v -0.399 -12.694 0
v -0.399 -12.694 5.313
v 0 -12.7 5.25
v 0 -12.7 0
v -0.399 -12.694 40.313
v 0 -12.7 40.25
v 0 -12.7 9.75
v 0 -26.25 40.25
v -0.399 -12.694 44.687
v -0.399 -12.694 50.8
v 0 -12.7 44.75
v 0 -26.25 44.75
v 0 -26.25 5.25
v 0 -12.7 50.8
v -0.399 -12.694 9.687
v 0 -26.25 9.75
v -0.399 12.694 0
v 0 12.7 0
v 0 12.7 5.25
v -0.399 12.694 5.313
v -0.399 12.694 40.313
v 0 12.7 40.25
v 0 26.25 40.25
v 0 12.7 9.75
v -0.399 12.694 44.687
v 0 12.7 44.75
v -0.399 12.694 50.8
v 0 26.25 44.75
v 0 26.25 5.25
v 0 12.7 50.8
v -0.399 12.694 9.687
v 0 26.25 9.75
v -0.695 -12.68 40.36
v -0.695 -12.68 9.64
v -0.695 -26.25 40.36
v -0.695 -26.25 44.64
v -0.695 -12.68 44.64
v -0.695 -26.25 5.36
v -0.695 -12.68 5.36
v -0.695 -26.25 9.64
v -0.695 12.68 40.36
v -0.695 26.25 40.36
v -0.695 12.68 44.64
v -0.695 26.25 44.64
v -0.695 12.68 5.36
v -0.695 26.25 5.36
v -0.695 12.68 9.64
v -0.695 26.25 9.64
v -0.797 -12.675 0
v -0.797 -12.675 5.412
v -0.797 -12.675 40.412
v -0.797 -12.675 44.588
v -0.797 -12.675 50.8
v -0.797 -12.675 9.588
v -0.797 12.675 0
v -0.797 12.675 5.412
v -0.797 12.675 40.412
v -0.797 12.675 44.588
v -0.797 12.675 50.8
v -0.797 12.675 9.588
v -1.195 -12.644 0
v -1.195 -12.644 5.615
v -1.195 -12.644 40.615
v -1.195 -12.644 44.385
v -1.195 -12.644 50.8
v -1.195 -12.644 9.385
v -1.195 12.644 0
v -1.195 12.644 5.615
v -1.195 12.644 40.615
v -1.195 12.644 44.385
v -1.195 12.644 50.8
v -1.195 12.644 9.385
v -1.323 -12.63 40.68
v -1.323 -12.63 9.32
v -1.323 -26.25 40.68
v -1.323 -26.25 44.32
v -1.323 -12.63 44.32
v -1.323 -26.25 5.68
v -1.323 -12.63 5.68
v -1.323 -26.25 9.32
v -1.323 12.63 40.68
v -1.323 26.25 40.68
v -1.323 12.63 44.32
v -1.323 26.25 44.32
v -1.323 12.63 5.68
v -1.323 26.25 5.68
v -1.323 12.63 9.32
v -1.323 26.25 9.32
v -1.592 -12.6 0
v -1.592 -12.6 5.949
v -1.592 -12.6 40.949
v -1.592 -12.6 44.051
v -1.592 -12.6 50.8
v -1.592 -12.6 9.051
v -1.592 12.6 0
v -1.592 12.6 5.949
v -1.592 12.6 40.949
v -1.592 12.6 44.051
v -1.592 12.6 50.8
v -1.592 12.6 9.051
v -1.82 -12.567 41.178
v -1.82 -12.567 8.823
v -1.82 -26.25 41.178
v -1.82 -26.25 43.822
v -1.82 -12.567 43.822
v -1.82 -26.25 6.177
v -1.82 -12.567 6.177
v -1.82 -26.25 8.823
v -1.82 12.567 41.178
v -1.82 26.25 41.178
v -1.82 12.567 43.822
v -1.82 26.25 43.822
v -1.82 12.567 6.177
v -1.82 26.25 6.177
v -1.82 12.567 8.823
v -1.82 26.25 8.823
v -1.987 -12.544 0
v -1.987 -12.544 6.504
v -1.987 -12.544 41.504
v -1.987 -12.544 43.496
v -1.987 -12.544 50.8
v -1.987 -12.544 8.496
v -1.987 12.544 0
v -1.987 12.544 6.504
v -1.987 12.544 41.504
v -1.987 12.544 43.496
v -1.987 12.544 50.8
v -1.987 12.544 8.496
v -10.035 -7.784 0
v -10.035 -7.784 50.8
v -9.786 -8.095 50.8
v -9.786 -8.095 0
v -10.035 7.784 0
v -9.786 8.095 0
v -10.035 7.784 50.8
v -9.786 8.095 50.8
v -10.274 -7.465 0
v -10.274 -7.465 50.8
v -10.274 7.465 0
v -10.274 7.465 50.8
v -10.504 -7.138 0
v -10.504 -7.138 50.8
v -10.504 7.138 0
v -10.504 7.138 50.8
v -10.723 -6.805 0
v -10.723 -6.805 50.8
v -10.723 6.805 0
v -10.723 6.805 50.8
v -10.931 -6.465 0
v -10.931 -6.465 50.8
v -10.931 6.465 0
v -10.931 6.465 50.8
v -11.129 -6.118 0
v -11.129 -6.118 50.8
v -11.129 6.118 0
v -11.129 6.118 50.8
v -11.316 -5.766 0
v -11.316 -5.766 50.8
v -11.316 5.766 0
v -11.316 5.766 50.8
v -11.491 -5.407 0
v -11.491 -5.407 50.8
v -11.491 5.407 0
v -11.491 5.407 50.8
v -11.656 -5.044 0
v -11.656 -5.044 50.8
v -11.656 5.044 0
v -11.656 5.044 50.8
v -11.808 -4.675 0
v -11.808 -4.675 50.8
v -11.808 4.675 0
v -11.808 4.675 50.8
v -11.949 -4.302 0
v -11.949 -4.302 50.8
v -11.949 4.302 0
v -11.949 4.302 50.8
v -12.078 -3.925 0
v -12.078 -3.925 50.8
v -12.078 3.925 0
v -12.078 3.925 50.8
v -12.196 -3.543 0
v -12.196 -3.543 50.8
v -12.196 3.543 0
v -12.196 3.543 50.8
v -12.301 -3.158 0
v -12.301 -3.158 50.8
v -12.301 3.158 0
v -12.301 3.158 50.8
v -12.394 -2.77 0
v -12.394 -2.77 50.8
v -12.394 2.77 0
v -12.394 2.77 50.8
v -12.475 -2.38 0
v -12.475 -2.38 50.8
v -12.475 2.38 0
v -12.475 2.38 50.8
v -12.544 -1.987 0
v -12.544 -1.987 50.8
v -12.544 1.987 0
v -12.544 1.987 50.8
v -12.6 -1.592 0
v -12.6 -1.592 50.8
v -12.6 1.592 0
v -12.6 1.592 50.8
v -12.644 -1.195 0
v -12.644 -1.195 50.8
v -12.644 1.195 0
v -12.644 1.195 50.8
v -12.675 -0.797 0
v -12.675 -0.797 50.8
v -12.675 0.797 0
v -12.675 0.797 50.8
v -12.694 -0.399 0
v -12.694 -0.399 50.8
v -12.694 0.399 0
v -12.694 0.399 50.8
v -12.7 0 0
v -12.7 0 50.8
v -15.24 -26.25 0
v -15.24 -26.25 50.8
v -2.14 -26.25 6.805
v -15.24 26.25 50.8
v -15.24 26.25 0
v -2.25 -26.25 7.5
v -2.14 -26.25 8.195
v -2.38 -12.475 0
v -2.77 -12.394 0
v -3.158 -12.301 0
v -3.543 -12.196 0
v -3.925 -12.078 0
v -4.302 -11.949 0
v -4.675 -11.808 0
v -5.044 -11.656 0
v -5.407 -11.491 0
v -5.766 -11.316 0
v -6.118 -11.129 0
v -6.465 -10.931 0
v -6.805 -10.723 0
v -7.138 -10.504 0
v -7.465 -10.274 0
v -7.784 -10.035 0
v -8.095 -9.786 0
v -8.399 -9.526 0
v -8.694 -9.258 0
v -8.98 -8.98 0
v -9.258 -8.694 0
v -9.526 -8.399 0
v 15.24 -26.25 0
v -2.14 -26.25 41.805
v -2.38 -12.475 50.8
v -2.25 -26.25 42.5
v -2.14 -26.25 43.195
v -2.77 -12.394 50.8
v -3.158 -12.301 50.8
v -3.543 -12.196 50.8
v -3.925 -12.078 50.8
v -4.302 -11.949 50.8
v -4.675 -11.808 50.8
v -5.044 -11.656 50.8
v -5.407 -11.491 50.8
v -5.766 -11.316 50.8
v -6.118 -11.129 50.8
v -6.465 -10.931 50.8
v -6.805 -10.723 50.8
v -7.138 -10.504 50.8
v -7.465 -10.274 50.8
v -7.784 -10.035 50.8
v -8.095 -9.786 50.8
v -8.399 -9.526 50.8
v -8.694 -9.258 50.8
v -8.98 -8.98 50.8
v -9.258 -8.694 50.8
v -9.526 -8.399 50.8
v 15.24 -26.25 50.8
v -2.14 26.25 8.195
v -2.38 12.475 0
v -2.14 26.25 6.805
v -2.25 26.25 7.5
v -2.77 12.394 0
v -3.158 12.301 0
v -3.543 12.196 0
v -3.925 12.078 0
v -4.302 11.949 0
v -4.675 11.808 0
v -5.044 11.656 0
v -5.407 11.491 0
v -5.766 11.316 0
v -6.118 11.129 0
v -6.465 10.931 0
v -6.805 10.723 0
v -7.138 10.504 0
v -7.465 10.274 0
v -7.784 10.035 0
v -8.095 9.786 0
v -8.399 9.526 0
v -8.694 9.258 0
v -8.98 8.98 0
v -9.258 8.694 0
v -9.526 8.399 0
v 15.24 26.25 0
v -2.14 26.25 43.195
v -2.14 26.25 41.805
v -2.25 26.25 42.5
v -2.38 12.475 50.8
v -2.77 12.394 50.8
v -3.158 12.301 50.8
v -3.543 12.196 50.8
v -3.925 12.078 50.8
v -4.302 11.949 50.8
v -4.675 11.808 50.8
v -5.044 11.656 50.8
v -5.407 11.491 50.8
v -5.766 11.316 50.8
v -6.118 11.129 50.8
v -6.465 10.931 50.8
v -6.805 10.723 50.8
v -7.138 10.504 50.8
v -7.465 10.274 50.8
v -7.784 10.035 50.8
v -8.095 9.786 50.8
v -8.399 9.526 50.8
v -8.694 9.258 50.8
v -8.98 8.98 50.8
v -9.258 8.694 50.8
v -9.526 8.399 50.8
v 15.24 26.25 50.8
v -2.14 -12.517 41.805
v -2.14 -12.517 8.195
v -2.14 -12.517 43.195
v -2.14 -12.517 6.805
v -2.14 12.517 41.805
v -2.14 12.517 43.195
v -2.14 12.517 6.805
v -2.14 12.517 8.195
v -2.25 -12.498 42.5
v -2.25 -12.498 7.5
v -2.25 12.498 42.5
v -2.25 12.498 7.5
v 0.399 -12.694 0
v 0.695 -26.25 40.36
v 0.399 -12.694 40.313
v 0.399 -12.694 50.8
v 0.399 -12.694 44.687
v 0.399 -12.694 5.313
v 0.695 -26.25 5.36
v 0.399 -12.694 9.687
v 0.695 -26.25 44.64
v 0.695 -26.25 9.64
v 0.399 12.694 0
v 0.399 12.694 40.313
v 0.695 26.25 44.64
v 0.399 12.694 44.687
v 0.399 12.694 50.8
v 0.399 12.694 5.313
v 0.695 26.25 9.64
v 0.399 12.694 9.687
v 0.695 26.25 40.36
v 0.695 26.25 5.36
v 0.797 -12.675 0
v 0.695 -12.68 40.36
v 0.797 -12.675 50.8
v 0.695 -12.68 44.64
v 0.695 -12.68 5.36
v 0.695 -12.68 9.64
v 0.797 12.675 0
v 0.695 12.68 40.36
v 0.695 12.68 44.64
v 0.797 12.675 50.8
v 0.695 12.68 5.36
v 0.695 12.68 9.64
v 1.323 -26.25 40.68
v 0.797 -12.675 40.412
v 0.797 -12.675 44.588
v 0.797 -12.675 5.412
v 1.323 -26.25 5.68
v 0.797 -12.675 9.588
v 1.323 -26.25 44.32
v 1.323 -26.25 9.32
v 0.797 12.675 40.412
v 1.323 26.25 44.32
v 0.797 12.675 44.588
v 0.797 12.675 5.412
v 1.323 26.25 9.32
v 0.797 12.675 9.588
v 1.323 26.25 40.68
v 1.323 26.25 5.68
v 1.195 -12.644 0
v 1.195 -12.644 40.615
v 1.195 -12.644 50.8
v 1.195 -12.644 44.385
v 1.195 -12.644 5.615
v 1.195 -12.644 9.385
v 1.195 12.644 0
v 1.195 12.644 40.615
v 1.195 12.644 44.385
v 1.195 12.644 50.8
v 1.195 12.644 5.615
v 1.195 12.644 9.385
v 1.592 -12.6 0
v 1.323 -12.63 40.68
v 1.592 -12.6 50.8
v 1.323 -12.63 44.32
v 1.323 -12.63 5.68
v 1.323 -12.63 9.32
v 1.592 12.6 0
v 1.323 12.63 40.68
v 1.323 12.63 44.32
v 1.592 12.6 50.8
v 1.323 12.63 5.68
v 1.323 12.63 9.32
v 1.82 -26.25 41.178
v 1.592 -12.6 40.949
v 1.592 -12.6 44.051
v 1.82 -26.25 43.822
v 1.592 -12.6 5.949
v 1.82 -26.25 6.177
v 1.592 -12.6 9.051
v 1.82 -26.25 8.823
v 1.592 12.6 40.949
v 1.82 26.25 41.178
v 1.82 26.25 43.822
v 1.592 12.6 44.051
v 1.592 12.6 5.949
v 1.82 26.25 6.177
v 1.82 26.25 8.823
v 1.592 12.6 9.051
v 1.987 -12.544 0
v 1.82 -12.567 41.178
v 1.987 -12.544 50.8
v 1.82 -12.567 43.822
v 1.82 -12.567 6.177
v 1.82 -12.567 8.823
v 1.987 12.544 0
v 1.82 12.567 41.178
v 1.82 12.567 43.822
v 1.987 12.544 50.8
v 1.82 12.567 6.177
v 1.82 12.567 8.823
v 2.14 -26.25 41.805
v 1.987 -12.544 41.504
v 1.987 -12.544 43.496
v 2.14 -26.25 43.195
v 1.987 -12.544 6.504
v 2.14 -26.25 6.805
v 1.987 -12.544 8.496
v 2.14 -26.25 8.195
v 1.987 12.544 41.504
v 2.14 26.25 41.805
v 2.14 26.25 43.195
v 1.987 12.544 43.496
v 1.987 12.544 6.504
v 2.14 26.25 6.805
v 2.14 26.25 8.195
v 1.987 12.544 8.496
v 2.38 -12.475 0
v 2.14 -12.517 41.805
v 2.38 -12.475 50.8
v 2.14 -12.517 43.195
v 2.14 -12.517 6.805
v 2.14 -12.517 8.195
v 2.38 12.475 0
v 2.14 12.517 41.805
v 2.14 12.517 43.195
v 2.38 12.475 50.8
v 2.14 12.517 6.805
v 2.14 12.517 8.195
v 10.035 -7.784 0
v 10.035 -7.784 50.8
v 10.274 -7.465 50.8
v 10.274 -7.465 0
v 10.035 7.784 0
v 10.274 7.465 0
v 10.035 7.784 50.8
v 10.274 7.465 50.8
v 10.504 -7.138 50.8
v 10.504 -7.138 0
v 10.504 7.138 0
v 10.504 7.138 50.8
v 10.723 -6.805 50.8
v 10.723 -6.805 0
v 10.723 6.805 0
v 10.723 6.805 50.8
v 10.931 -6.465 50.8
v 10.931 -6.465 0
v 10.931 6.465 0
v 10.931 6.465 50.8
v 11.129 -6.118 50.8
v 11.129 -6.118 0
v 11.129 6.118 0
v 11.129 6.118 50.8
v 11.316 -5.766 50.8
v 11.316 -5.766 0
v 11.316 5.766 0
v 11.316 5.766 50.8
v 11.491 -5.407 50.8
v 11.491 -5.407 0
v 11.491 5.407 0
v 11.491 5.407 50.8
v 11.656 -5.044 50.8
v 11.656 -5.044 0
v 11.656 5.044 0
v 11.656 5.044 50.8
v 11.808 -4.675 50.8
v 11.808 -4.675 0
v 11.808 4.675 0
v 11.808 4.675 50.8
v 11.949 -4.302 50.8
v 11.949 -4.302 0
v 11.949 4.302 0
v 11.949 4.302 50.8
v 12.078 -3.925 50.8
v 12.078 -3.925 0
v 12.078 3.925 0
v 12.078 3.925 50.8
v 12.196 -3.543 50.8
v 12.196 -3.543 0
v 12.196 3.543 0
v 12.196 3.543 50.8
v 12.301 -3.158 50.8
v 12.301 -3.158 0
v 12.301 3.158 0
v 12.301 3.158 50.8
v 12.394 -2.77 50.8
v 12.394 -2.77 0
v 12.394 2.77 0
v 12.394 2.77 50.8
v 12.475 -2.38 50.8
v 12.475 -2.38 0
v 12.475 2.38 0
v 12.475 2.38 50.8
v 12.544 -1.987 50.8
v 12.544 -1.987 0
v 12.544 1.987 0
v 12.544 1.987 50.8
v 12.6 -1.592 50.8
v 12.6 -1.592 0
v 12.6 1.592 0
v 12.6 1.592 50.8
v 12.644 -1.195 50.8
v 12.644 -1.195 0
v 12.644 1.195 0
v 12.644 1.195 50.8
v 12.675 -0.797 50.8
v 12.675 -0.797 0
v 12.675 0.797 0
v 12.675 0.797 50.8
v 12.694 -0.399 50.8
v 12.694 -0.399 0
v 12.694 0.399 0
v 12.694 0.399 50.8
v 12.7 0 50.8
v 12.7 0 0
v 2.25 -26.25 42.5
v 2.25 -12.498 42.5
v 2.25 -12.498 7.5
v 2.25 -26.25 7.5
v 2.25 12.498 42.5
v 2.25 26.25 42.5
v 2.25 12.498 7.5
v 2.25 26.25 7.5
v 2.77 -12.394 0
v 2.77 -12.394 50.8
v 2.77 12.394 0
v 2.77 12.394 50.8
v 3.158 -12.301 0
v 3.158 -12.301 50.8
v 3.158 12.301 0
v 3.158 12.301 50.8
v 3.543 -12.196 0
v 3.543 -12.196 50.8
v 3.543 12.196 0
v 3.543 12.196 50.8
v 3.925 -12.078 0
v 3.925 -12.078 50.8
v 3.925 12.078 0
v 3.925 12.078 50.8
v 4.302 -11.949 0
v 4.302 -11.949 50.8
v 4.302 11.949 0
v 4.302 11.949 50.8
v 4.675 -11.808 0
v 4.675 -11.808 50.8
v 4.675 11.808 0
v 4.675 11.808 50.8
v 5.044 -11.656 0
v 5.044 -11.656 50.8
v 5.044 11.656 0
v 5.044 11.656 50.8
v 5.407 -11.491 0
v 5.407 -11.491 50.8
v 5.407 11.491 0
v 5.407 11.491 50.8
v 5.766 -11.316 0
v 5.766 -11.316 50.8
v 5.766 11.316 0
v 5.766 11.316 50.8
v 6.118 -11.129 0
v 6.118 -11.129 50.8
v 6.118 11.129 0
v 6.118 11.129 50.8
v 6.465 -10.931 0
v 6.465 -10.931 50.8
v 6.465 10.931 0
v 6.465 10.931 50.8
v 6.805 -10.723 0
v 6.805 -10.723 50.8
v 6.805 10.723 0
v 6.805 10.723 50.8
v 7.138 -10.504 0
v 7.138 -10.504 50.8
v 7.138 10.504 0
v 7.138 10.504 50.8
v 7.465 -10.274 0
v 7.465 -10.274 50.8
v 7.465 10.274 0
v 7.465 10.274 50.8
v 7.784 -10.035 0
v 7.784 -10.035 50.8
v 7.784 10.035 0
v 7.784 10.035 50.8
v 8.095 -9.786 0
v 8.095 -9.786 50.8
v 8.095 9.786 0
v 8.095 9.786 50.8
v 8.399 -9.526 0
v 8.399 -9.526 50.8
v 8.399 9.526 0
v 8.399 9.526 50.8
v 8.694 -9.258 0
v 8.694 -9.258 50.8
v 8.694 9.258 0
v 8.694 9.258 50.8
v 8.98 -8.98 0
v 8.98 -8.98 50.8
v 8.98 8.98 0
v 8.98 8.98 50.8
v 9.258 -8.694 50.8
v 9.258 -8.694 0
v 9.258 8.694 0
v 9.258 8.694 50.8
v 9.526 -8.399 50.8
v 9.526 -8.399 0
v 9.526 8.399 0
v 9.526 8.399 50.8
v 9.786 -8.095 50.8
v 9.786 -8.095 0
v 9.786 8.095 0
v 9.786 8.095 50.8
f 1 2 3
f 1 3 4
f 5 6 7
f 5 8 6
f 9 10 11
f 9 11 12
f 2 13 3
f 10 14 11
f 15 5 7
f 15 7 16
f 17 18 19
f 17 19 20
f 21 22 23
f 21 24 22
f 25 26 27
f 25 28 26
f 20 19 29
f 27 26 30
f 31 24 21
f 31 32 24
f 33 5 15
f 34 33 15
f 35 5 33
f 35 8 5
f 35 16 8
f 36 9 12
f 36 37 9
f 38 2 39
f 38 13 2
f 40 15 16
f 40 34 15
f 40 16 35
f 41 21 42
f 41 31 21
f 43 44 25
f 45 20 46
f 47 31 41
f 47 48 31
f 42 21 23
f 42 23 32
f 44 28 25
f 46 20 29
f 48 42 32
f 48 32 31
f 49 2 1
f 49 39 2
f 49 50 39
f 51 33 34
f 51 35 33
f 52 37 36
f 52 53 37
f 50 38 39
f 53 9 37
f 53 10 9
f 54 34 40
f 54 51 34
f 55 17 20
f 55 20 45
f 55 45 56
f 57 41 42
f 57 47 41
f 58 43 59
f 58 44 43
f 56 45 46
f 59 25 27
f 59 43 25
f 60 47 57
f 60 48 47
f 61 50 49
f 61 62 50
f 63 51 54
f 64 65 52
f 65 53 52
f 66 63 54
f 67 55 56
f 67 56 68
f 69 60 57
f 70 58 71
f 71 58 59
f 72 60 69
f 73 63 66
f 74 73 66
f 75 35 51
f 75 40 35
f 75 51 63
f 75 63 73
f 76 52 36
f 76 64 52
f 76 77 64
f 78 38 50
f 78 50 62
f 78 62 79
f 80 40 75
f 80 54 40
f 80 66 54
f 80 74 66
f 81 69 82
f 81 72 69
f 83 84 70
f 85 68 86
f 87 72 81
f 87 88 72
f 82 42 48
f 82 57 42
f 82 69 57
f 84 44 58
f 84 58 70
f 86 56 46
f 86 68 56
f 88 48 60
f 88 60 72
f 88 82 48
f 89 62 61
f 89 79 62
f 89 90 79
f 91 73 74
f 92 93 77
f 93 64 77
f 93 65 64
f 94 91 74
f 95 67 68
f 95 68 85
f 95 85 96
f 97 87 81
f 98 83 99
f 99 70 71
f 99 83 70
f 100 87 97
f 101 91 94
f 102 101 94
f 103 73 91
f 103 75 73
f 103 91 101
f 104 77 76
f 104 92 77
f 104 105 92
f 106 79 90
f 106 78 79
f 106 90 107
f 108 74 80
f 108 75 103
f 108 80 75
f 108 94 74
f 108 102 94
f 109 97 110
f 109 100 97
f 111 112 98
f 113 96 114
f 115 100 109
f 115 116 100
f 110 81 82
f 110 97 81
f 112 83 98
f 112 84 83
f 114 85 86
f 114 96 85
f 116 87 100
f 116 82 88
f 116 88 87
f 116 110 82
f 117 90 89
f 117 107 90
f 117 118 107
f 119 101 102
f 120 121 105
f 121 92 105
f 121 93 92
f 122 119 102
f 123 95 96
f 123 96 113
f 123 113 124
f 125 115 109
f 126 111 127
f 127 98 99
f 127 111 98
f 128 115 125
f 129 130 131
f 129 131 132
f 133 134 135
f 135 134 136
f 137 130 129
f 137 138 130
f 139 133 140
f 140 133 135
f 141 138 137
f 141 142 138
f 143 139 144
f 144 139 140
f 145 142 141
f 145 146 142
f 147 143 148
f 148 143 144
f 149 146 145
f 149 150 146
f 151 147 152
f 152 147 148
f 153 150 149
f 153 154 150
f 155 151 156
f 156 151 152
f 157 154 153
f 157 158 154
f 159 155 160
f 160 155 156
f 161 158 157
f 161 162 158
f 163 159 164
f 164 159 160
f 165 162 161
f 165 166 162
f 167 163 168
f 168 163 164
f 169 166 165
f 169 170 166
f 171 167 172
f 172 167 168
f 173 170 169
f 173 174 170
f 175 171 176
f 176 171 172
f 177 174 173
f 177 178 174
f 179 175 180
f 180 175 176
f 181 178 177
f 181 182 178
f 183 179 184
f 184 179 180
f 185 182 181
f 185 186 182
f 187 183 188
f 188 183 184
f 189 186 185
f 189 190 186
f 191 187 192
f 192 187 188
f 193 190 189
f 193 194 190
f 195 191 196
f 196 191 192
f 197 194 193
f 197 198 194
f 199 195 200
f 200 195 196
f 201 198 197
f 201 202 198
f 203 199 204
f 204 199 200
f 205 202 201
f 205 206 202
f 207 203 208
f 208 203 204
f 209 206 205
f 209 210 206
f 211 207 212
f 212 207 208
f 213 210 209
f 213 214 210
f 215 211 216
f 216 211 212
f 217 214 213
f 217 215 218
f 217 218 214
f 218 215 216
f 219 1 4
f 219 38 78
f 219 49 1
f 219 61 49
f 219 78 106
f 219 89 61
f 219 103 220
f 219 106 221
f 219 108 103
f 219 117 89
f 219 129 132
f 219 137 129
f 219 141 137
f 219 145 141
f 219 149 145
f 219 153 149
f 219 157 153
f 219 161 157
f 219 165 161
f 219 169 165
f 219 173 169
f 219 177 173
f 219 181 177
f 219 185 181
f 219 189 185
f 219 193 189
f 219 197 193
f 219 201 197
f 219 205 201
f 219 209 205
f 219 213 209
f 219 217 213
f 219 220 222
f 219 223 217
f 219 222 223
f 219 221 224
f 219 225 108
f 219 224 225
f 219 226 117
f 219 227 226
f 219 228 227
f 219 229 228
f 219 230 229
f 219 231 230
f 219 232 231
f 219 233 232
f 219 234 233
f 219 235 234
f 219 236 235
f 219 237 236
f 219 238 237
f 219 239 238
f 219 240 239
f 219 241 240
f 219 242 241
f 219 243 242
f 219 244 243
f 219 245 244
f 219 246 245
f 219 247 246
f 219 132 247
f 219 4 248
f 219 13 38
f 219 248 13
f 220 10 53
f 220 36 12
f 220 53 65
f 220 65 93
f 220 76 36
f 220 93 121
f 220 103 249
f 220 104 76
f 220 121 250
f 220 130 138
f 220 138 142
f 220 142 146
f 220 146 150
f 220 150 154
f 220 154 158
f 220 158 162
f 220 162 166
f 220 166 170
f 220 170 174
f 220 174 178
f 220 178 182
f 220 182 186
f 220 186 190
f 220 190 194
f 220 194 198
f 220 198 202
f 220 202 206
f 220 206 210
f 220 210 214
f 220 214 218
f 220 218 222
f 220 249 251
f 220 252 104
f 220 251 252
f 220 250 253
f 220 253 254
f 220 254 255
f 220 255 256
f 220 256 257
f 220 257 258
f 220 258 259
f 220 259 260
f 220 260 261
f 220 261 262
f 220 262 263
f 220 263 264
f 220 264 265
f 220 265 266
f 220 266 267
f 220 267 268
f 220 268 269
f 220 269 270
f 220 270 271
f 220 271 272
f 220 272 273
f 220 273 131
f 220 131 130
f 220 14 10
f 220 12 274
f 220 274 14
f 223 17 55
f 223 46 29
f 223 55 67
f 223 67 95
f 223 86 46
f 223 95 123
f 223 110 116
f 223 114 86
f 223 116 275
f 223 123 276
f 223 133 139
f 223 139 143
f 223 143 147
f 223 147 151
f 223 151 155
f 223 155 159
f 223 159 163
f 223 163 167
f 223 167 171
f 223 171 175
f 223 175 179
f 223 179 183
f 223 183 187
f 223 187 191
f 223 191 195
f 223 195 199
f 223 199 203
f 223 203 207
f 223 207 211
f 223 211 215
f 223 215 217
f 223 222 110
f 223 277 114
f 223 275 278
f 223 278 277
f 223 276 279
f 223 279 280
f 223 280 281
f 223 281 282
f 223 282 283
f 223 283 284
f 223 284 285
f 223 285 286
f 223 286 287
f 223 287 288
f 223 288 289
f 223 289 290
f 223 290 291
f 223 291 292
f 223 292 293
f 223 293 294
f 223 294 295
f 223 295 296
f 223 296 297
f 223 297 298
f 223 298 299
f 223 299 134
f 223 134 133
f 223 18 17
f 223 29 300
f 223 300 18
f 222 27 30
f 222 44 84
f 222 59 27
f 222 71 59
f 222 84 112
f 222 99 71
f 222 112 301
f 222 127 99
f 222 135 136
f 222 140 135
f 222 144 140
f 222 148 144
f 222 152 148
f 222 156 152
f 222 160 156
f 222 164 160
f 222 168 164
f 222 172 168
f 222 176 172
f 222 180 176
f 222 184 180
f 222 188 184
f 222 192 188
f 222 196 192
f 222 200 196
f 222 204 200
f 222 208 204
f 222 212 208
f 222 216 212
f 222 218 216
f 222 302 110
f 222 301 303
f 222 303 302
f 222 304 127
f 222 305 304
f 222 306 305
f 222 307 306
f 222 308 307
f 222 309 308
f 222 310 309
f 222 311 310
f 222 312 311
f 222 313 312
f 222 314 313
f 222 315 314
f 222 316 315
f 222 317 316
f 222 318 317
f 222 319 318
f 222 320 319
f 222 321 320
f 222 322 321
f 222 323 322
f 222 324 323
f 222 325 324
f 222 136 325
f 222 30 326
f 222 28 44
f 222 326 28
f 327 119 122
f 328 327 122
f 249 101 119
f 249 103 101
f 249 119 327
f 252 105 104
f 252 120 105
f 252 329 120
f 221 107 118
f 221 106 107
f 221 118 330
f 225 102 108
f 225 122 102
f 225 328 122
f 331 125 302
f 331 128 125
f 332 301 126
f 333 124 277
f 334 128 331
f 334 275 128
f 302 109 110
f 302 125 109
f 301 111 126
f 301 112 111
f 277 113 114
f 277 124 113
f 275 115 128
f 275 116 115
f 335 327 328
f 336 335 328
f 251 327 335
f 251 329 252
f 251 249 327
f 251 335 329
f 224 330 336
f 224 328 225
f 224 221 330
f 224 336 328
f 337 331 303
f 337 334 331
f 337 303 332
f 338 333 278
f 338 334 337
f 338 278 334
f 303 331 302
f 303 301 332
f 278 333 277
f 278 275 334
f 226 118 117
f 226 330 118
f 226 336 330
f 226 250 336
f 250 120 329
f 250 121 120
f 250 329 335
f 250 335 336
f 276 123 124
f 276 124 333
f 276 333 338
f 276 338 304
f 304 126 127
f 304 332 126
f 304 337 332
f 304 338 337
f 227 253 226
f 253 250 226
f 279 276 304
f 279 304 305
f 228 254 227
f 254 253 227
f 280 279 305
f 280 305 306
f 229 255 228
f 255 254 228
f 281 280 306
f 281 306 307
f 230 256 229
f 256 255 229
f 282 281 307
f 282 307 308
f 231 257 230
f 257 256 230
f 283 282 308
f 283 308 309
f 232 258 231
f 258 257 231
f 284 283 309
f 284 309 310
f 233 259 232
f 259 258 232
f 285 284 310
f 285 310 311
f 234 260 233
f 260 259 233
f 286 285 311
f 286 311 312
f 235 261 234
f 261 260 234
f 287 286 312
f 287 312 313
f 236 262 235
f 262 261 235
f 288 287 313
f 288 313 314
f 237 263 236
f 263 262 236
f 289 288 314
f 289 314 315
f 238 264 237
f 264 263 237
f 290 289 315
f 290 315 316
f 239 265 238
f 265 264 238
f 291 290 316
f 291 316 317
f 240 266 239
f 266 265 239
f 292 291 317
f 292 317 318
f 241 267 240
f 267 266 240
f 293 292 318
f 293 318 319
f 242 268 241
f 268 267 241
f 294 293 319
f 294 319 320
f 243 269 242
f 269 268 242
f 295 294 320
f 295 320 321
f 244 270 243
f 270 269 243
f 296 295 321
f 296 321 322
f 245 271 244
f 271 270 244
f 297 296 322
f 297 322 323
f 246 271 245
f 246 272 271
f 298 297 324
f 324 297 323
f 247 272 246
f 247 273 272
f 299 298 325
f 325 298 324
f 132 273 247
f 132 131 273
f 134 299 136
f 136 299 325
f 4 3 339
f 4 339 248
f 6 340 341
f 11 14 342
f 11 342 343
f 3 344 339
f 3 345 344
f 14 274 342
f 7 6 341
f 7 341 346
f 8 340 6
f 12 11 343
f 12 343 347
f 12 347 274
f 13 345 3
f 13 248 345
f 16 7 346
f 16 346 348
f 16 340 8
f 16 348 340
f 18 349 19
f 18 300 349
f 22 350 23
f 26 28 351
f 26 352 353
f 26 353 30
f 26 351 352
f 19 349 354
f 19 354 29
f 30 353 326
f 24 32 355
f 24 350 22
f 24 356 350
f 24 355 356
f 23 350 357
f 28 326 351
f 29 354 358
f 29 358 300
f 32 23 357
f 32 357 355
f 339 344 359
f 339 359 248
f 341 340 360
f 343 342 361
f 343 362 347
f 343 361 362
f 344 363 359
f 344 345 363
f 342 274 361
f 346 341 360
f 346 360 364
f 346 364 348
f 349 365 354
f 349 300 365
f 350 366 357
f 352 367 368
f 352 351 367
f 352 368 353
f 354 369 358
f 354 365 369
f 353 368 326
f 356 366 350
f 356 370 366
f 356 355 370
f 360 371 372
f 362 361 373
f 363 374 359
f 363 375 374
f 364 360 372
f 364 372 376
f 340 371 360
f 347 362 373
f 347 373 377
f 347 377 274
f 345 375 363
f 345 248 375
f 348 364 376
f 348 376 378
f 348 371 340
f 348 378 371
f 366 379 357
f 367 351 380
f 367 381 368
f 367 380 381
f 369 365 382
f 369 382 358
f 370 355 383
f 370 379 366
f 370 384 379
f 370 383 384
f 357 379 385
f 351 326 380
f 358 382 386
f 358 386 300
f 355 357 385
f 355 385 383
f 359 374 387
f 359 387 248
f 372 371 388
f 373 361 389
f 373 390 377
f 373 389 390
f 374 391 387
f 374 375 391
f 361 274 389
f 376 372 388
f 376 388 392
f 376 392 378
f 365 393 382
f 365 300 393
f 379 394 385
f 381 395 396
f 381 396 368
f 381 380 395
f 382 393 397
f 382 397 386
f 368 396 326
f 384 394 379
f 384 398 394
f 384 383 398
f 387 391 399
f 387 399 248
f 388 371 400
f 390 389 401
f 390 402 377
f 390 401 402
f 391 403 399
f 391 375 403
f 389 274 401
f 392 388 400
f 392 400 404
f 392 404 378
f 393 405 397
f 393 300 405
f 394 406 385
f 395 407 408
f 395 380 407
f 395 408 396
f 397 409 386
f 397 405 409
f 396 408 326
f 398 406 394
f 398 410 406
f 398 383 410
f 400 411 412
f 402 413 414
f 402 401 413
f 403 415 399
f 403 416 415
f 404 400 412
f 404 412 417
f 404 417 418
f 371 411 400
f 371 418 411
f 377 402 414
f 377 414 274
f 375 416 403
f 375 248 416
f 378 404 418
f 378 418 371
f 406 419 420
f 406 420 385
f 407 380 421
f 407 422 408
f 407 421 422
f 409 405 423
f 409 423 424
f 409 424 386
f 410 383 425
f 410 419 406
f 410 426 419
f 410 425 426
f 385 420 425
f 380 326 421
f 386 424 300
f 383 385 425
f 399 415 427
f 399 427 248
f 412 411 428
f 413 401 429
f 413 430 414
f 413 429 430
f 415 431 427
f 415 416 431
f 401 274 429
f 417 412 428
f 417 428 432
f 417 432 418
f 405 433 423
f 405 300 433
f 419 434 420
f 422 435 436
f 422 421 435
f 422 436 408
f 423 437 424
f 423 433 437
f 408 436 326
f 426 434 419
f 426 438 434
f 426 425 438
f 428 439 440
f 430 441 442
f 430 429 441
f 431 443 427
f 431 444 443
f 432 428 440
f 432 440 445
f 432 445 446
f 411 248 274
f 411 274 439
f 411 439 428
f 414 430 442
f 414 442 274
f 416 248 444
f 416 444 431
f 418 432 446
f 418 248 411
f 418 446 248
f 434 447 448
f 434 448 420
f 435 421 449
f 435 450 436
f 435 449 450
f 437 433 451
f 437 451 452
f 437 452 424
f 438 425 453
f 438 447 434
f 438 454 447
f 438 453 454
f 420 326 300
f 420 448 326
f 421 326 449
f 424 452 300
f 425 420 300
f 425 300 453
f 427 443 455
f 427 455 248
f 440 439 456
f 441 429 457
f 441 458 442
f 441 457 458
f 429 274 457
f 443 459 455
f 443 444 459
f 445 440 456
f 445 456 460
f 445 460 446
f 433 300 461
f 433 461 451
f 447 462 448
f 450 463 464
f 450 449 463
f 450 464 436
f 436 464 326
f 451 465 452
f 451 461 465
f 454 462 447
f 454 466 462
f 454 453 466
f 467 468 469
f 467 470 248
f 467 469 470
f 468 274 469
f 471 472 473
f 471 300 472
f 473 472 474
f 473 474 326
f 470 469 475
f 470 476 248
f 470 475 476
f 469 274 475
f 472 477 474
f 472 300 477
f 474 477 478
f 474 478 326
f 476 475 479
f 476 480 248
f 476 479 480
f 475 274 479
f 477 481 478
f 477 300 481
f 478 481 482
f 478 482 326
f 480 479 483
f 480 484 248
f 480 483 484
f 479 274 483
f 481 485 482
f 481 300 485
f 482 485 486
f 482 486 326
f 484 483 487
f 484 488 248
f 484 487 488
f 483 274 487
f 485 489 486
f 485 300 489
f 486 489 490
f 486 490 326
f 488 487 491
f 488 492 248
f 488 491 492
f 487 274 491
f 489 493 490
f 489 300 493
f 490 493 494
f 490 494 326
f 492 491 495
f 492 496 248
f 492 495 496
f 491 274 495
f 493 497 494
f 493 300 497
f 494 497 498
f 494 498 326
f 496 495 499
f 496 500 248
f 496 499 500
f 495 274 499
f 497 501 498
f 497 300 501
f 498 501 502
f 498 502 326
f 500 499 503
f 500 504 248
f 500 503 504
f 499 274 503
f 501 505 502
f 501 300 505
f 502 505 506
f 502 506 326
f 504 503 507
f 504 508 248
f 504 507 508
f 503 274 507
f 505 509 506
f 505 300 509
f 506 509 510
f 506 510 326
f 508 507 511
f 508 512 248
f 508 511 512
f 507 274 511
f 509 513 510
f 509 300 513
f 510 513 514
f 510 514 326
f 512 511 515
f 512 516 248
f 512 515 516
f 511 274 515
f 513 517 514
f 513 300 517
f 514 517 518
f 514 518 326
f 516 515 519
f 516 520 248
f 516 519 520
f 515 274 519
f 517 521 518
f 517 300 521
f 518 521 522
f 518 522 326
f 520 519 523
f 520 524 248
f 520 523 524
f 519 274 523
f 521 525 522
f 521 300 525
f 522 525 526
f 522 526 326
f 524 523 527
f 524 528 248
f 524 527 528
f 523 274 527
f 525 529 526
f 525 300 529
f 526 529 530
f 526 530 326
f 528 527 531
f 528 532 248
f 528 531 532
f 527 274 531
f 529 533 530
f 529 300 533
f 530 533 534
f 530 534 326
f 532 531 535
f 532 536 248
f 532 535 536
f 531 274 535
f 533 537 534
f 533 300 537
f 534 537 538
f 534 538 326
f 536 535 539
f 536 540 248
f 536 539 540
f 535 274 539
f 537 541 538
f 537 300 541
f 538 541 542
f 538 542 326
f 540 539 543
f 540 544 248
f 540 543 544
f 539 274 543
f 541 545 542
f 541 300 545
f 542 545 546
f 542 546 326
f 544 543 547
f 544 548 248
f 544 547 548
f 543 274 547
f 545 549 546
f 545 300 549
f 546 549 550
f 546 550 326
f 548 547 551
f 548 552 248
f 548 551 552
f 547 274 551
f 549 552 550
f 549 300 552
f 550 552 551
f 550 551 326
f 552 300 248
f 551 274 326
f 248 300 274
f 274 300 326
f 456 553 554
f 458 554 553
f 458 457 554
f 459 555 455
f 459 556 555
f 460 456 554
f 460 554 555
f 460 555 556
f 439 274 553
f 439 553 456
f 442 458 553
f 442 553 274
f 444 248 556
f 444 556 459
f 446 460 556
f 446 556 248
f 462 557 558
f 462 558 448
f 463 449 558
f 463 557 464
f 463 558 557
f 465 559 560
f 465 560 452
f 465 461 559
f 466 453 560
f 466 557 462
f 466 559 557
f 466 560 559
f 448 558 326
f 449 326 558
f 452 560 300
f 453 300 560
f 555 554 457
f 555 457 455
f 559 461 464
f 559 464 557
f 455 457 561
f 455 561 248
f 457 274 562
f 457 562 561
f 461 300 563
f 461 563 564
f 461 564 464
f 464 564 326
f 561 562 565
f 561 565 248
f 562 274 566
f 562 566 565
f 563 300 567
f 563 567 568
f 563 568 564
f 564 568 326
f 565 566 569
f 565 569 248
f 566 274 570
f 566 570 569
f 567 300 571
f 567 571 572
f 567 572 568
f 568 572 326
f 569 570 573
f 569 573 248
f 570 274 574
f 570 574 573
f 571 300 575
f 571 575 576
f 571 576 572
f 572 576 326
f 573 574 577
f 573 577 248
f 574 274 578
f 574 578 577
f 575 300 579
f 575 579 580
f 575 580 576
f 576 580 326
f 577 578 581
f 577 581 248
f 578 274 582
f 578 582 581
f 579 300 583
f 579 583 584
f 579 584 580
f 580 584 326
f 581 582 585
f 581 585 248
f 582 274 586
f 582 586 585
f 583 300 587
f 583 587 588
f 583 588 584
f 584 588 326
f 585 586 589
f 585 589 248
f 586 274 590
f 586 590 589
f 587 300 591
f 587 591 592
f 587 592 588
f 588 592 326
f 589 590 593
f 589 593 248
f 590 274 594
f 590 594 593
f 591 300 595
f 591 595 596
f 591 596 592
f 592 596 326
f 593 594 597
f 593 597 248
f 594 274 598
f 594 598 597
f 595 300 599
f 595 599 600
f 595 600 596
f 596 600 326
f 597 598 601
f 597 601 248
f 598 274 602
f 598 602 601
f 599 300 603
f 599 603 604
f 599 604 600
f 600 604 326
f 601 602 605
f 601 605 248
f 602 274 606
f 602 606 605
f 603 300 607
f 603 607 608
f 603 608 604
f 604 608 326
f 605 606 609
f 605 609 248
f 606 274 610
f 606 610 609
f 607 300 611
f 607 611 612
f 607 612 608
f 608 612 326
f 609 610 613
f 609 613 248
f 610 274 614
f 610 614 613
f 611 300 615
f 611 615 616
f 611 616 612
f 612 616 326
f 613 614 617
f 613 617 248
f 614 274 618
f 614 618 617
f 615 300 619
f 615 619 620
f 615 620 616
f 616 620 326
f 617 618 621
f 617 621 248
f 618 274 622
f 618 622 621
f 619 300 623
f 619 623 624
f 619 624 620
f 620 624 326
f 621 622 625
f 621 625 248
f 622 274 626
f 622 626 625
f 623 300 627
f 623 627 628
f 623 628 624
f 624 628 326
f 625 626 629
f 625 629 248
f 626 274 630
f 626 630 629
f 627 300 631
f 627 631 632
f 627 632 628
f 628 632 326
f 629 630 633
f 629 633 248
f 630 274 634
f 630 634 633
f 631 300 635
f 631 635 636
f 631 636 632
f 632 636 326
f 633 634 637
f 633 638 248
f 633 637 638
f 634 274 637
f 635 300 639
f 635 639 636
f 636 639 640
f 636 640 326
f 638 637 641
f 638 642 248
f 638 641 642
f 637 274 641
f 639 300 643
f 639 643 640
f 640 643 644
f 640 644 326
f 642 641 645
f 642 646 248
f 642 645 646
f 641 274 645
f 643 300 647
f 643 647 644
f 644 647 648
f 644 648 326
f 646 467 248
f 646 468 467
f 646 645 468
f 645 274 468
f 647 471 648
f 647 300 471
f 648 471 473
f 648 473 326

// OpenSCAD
// file: ../lib/TextGenerator.scad
//Draw text
scale([4,4,4]) drawtext("Hello World!");

//Draw character set
//scale([2,2,2]) drawtext(" !\"#$%&'()*+,-./0123456789:;<=>?@ABCDEFGHIJKLMNOPQRSTUVWXYZ[\\]^_`abcdefghijklmnopqrstuvwxyz{|}");

module drawtext(text,center=false) {
	//Characters
	chars = " !\"#$%&'()*+,-./0123456789:;<=>?@ABCDEFGHIJKLMNOPQRSTUVWXYZ[\\]^_`abcdefghijklmnopqrstuvwxyz{|}";

	//Chracter table defining 5x7 characters
	//Adapted from: http://www.geocities.com/dinceraydin/djlcdsim/chartable.js
	char_table = [ [ 0, 0, 0, 0, 0, 0, 0],
                  [ 4, 0, 4, 4, 4, 4, 4],
                  [ 0, 0, 0, 0,10,10,10],
                  [10,10,31,10,31,10,10],
                  [ 4,30, 5,14,20,15, 4],
                  [ 3,19, 8, 4, 2,25,24],
                  [13,18,21, 8,20,18,12],
                  [ 0, 0, 0, 0, 8, 4,12],
                  [ 2, 4, 8, 8, 8, 4, 2],
                  [ 8, 4, 2, 2, 2, 4, 8],
                  [ 0, 4,21,14,21, 4, 0],
                  [ 0, 4, 4,31, 4, 4, 0],
                  [ 8, 4,12, 0, 0, 0, 0],
                  [ 0, 0, 0,31, 0, 0, 0],
                  [12,12, 0, 0, 0, 0, 0],
                  [ 0,16, 8, 4, 2, 1, 0],
                  [14,17,25,21,19,17,14],
                  [14, 4, 4, 4, 4,12, 4],
                  [31, 8, 4, 2, 1,17,14],
                  [14,17, 1, 2, 4, 2,31],
                  [ 2, 2,31,18,10, 6, 2],
                  [14,17, 1, 1,30,16,31],
                  [14,17,17,30,16, 8, 6],
                  [ 8, 8, 8, 4, 2, 1,31],
                  [14,17,17,14,17,17,14],
                  [12, 2, 1,15,17,17,14],
                  [ 0,12,12, 0,12,12, 0],
                  [ 8, 4,12, 0,12,12, 0],
                  [ 2, 4, 8,16, 8, 4, 2],
                  [ 0, 0,31, 0,31, 0, 0],
                  [16, 8, 4, 2, 4, 8,16],
                  [ 4, 0, 4, 2, 1,17,14],
                  [14,21,21,13, 1,17,14],
                  [17,17,31,17,17,17,14],
                  [30,17,17,30,17,17,30],
                  [14,17,16,16,16,17,14],
                  [30,17,17,17,17,17,30],
                  [31,16,16,30,16,16,31],
                  [16,16,16,30,16,16,31],
                  [15,17,17,23,16,17,14],
                  [17,17,17,31,17,17,17],
                  [14, 4, 4, 4, 4, 4,14],
                  [12,18, 2, 2, 2, 2, 7],
                  [17,18,20,24,20,18,17],
                  [31,16,16,16,16,16,16],
                  [17,17,17,21,21,27,17],
                  [17,17,19,21,25,17,17],
                  [14,17,17,17,17,17,14],
                  [16,16,16,30,17,17,30],
                  [13,18,21,17,17,17,14],
                  [17,18,20,30,17,17,30],
                  [30, 1, 1,14,16,16,15],
                  [ 4, 4, 4, 4, 4, 4,31],
                  [14,17,17,17,17,17,17],
                  [ 4,10,17,17,17,17,17],
                  [10,21,21,21,17,17,17],
                  [17,17,10, 4,10,17,17],
                  [ 4, 4, 4,10,17,17,17],
                  [31,16, 8, 4, 2, 1,31],
                  [14, 8, 8, 8, 8, 8,14],
                  [ 0, 1, 2, 4, 8,16, 0],
                  [14, 2, 2, 2, 2, 2,14],
                  [ 0, 0, 0, 0,17,10, 4],
                  [31, 0, 0, 0, 0, 0, 0],
                  [ 0, 0, 0, 0, 2, 4, 8],
                  [15,17,15, 1,14, 0, 0],
                  [30,17,17,25,22,16,16],
                  [14,17,16,16,14, 0, 0],
                  [15,17,17,19,13, 1, 1],
                  [14,16,31,17,14, 0, 0],
                  [ 8, 8, 8,28, 8, 9, 6],
                  [14, 1,15,17,15, 0, 0],
                  [17,17,17,25,22,16,16],
                  [14, 4, 4, 4,12, 0, 4],
                  [12,18, 2, 2, 2, 6, 2],
                  [18,20,24,20,18,16,16],
                  [14, 4, 4, 4, 4, 4,12],
                  [17,17,21,21,26, 0, 0],
                  [17,17,17,25,22, 0, 0],
                  [14,17,17,17,14, 0, 0],
                  [16,16,30,17,30, 0, 0],
                  [ 1, 1,15,19,13, 0, 0],
                  [16,16,16,25,22, 0, 0],
                  [30, 1,14,16,15, 0, 0],
                  [ 6, 9, 8, 8,28, 8, 8],
                  [13,19,17,17,17, 0, 0],
                  [ 4,10,17,17,17, 0, 0],
                  [10,21,21,17,17, 0, 0],
                  [17,10, 4,10,17, 0, 0],
                  [14, 1,15,17,17, 0, 0],
                  [31, 8, 4, 2,31, 0, 0],
                  [ 2, 4, 4, 8, 4, 4, 2],
                  [ 4, 4, 4, 4, 4, 4, 4],
                  [ 8, 4, 4, 2, 4, 4, 8] ];

	//Binary decode table
	dec_table = [ "00000", "00001", "00010", "00011", "00100", "00101",
  	            "00110", "00111", "01000", "01001", "01010", "01011",
  	            "01100", "01101", "01110", "01111", "10000", "10001",
  	            "10010", "10011", "10100", "10101", "10110", "10111",
	            "11000", "11001", "11010", "11011", "11100", "11101",
	            "11110", "11111" ];

    //Process string one character at a time
    for(itext = [0:len(text)-1]) {
        assign(length = len(text)) {
            //Convert character to index
            assign(ichar = search(text[itext],chars,1)[0]) {
                //Decode character - rows
                for(irow = [0:6]) {
                    assign(val = dec_table[char_table[ichar][irow]]) {
                        //Decode character - cols
                        for(icol = [0:4]) {
                            assign(bit = search(val[icol],"01",1)[0]) {
                                if(bit) {
                                    //Output cube
                                    if (center)
                                        translate([icol - 2.5 +
                                        (6*itext)-len(text)/2, irow-3.5,0])
                                            cube([1.0001,1.0001,1]);
                                    else {
                                        translate([icol + (6*itext), irow, 0])
                                            cube([1.0001,1.0001,1]);
                                    }
                                }
                            }
                        }
                    }
                }
            }
	}
}
}
// file: ../888_1026.scad
DOC_SCALING_FACTOR = 100;
DOC_HEIGHT = 50;

include <./lib/dimlines.scad>

DIM_LINE_WIDTH = .025 * DOC_SCALING_FACTOR;  
DIM_SPACE = .1 * DOC_SCALING_FACTOR;   


//improving rendering speed.
draft = true;   // sets rendering quality to draft.
$fs = draft ? 5 : 0.5;
$fa = 10;



module 888_1026(draft)
{
    width = main_tube_outer_diameter+2*thickness_between_tubes;	
    depth = 52.5;   // šířka plechu držáku motoru
    height = main_tube_outer_diameter*2;


    difference (){

        translate([-(width/2),-(depth/2),0])
            color([0,0.5,0])

            cube ([width,depth,height]);
    	
    	//tube
    	translate([0,0,- global_clearance/2])
    	   cylinder(h = height + global_clearance,r = main_tube_outer_diameter/2, $fn = draft ? 100 : 200);

    	//screw
    	translate([0,depth/2 + global_clearance/2,7.5])
    	   rotate([90,0,0])
    	       cylinder(h = depth + global_clearance, r = M4_screw_diameter/2, $fn = draft ? 10 : 20);


    	translate([0,depth/2 + global_clearance/2,42.5])
    	   rotate([90,0,0])
    	       cylinder(h = depth + global_clearance, r = M4_screw_diameter/2, $fn = draft ? 10 : 20);
    }
}


module 888_1026_drillhelper(height = 60, height_of_cap_cylinder = 2){



    width = main_tube_outer_diameter*2; 
    depth = main_tube_outer_diameter + 4*thickness_between_tubes;
    


    difference (){

        translate([-(width/2),-(depth/2),0])
        color([0,0.5,0])
            cube ([width,depth,height]);
        
        //tube
        translate([0,0,- global_clearance])
           cylinder(h = 2*main_tube_outer_diameter + global_clearance,r = main_tube_outer_diameter/2, $fn = draft ? 100 : 200);

        //screw
        translate([0,depth/2 + global_clearance/2,7.5])
           rotate([90,0,0])
               cylinder(h = depth + global_clearance, r = M4_screw_diameter/2, $fn = draft ? 10 : 20);


        translate([0,depth/2 + global_clearance/2,42.5])
           rotate([90,0,0])
               cylinder(h = depth + global_clearance, r = M4_screw_diameter/2, $fn = draft ? 10 : 20);
        
        //prořezy pro zajištění proti otočení
        translate([main_tube_outer_diameter/2 -global_clearance,- (3*global_clearance)/2,- main_tube_outer_diameter])
                cube([main_tube_outer_diameter, 3*global_clearance, 4*main_tube_outer_diameter]);

        mirror([1,0,0])
        translate([main_tube_outer_diameter/2 - global_clearance,- (3*global_clearance)/2,- main_tube_outer_diameter])
                cube([main_tube_outer_diameter, 3*global_clearance, 4*main_tube_outer_diameter]);

        //šrouby pro zajištění
        translate([depth/2,0,width/2])
            rotate([90,0,0])
                union(){
                        cylinder(h = 50, r = M4_screw_diameter/2, $fn = draft ? 10 : 20, center = true);
                translate([0,0, main_tube_outer_diameter/2 + 2*thickness_between_tubes - 2*Nut_height_M4])
                        cylinder(h = Nut_height_M4*2 + global_clearance, r = Nut_diameter_M4/2, $fn = 6);
                translate([0,0, - main_tube_outer_diameter/2 - 2*thickness_between_tubes - global_clearance])
                        cylinder(h = Nut_height_M4*2 + global_clearance, r = Nut_diameter_M4/2, $fn = 6);
                }
        
        mirror([1,0,0])
        translate([depth/2,0,width/2])
            rotate([90,0,0])
                union(){
                        cylinder(h = 50, r = M4_screw_diameter/2, $fn = draft ? 10 : 20, center = true);
                translate([0,0, main_tube_outer_diameter/2 + 2*thickness_between_tubes - 2*Nut_height_M4])
                        cylinder(h = Nut_height_M4*2 + global_clearance, r = Nut_diameter_M4/2, $fn = 6);
                translate([0,0, - main_tube_outer_diameter/2 - 2*thickness_between_tubes - global_clearance])
                        cylinder(h = Nut_height_M4*2 + global_clearance, r = Nut_diameter_M4/2, $fn = 6);
                }
    }



}

module 888_1026_drillhelper_doc(){


    color("Black")
        union(){
            //screw
            translate ([0,-150*0.4,7.5])
                rotate ([0,90,90])
                    circle_center(radius=main_tube_outer_diameter/4, size=DIM_HOLE_CENTER, line_width=DIM_LINE_WIDTH);

            translate ([0,-150*0.4,42.5])
                rotate ([0,90,90])
                    circle_center(radius=main_tube_outer_diameter/4, size=DIM_HOLE_CENTER, line_width=DIM_LINE_WIDTH);
        }
}



888_1026(draft);



888_1026(draft);

//666_1026_drillhelper(height = 60, height_of_cap_cylinder = 2);


include <../Parameters.scad>
// file: ../../Parameters.scad
//Main tube diameter - hole [mm]
main_tube_outer_diameter = 25.4;
main_tube_inner_diameter = 23.5;

//Tube for undercarriage - hole [mm]
tube_for_undercarriage_outer_diameter = 10.6;
tube_for_undercarriage_inner_diameter = 6;
global_clearance = 0.5;


//umístění podvozkových trubek

second_undercarriage_hole = main_tube_outer_diameter*2 + main_tube_outer_diameter/5 + main_tube_outer_diameter/2 + 170 + 160;

// Parameters of cube couplings
coupling_wall_thickness = main_tube_outer_diameter/5;  //width of coupling walls 
thickness_between_tubes = main_tube_outer_diameter/10;    // minimum distance between tubes in couplings

coupling_wall_thickness_undercarriage = tube_for_undercarriage_outer_diameter/3;
thickness_between_tubes_undercarriage = tube_for_undercarriage_outer_diameter/10;

//Screw diameter and nut for M4 [mm]
M4_screw_diameter=4.5;
Nut_height_M4 = 3.2;
Nut_diameter_M4 = 7.86;


//Screw diameter and nut for M3 [mm]
M3_screw_diameter = 3.2;
Nut_height_M3 = 1.7;	
Nut_diameter_M3 = 6.6; 


//The tube for help
Help_main_tube_outer = 25;
Help_main_tube_inner = 23; 
Help_tube_for_undercarriage_outer = 10;
Help_tube_for_undercarriage_inner = 5;


//main hull parameters

hull_drop_length = 580;
hull_wall_thickness = 0.8;
hull_y_size = 120;
hull_z_size = 150;
hull_x_size = 580;
hull_corner_radius = 4;
hull_airfoil_thickness= 35;  // thickness of drop generating airfoil in percent of lenght.
hull_scale_x = 1;
hull_scale_y = 1.5;
hull_scale_z = 1.5;

main_pilon_position = 170+68;
cover_pilon_position = 180;
height_of_vertical_tube = 275; //278mm je změřená délka trubky. 

ribbon_width = 5; // šířka vyztužovacích lemů. 

// šířka otvoru v přední části kapoty pro držák motoru.
width_of_engine_holder = 63;

//Top Cover Division - dělení horního krytu pro tisk
top_cover_division = [0, 50, 150, 280, 410, hull_x_size]; // upraveny seznam tak, aby deleni začinalo od nuly, což umožňí úplně automatické rozdělení.

//Bottom Cover Division - dělení dolního krytu pro tisk
bottom_cover_division = [0,100,250,365, 470, hull_x_size];
// zkrácená část pro payload pro testovací tisk
//bottom_cover_division = [0,200,250,365, 470, hull_x_size];

//Base Divison - dělení podložky
base_division = [0,140,280,410, hull_x_size];

//Cover pilon division - na výšku (v ose Z)
cover_pilon_division = [0,170,height_of_vertical_tube + main_tube_outer_diameter + coupling_wall_thickness];

//pozice šroubů
	//horní kryt
top_screw_position = [0, (top_cover_division[0] + top_cover_division[1])/4, (top_cover_division[2] - top_cover_division[1])/2 + top_cover_division[1], (top_cover_division[3] - top_cover_division[2])/2 + top_cover_division[2],(top_cover_division[4] - top_cover_division[3])/2 + top_cover_division[3],(top_cover_division[5] - top_cover_division[4])/2 + top_cover_division[4] - 20];
	//spodní kryt
bottom_screw_position = [0,(bottom_cover_division[0] + bottom_cover_division[1])/15 + 5, bottom_cover_division[1]/1.1, + bottom_cover_division[3], bottom_cover_division[3] + bottom_cover_division[1]/2, bottom_cover_division[4] - 6*global_clearance, bottom_cover_division[4] + bottom_cover_division[1]/2.5];




//šířka zámků
lock_width = 10;

//délka zámků
lock_length = 3;


//accumulator
//základní rozměry akumulátoru
width_of_accumulator = 129.4;//45+1;
depth_of_accumulator = 40.61;
height_of_accumulator = 43.65;
//Zapuštění akumulátoru
sink_of_accumulator = 5; //main_tube_outer_diameter/5 - Nut_height_M3*1.5;

//tloušťka hrany spojky
accumulator_holder_width = 18; 
accumulator_holder_thickness = 10; 

//posunutí akumálátoru na podložce
move_of_accumulator = 165;   // pozice akumulátoru (ovlivňuje těžiště)


////////////////
// Senzory
///////////////////

//opticalFlow
    width_optical_flow_senzor = 45.5;
    depth_optical_flow_senzor = 6;
    height_optical_flow_senzor = 35;
    sink_of_optical_flow_senzor = depth_optical_flow_senzor - 5; 
    M3_optical_flow_senzor_Z = 30.4;
    M3_optical_flow_senzor_X = 24;
    M3_optical_flow_senzor_Z_alone = 9.1;
    M3_optical_flow_senzor_X_alone = 16.7;
// main file
include <../../Parameters.scad>

use <../888_1026.scad>


888_1026();
